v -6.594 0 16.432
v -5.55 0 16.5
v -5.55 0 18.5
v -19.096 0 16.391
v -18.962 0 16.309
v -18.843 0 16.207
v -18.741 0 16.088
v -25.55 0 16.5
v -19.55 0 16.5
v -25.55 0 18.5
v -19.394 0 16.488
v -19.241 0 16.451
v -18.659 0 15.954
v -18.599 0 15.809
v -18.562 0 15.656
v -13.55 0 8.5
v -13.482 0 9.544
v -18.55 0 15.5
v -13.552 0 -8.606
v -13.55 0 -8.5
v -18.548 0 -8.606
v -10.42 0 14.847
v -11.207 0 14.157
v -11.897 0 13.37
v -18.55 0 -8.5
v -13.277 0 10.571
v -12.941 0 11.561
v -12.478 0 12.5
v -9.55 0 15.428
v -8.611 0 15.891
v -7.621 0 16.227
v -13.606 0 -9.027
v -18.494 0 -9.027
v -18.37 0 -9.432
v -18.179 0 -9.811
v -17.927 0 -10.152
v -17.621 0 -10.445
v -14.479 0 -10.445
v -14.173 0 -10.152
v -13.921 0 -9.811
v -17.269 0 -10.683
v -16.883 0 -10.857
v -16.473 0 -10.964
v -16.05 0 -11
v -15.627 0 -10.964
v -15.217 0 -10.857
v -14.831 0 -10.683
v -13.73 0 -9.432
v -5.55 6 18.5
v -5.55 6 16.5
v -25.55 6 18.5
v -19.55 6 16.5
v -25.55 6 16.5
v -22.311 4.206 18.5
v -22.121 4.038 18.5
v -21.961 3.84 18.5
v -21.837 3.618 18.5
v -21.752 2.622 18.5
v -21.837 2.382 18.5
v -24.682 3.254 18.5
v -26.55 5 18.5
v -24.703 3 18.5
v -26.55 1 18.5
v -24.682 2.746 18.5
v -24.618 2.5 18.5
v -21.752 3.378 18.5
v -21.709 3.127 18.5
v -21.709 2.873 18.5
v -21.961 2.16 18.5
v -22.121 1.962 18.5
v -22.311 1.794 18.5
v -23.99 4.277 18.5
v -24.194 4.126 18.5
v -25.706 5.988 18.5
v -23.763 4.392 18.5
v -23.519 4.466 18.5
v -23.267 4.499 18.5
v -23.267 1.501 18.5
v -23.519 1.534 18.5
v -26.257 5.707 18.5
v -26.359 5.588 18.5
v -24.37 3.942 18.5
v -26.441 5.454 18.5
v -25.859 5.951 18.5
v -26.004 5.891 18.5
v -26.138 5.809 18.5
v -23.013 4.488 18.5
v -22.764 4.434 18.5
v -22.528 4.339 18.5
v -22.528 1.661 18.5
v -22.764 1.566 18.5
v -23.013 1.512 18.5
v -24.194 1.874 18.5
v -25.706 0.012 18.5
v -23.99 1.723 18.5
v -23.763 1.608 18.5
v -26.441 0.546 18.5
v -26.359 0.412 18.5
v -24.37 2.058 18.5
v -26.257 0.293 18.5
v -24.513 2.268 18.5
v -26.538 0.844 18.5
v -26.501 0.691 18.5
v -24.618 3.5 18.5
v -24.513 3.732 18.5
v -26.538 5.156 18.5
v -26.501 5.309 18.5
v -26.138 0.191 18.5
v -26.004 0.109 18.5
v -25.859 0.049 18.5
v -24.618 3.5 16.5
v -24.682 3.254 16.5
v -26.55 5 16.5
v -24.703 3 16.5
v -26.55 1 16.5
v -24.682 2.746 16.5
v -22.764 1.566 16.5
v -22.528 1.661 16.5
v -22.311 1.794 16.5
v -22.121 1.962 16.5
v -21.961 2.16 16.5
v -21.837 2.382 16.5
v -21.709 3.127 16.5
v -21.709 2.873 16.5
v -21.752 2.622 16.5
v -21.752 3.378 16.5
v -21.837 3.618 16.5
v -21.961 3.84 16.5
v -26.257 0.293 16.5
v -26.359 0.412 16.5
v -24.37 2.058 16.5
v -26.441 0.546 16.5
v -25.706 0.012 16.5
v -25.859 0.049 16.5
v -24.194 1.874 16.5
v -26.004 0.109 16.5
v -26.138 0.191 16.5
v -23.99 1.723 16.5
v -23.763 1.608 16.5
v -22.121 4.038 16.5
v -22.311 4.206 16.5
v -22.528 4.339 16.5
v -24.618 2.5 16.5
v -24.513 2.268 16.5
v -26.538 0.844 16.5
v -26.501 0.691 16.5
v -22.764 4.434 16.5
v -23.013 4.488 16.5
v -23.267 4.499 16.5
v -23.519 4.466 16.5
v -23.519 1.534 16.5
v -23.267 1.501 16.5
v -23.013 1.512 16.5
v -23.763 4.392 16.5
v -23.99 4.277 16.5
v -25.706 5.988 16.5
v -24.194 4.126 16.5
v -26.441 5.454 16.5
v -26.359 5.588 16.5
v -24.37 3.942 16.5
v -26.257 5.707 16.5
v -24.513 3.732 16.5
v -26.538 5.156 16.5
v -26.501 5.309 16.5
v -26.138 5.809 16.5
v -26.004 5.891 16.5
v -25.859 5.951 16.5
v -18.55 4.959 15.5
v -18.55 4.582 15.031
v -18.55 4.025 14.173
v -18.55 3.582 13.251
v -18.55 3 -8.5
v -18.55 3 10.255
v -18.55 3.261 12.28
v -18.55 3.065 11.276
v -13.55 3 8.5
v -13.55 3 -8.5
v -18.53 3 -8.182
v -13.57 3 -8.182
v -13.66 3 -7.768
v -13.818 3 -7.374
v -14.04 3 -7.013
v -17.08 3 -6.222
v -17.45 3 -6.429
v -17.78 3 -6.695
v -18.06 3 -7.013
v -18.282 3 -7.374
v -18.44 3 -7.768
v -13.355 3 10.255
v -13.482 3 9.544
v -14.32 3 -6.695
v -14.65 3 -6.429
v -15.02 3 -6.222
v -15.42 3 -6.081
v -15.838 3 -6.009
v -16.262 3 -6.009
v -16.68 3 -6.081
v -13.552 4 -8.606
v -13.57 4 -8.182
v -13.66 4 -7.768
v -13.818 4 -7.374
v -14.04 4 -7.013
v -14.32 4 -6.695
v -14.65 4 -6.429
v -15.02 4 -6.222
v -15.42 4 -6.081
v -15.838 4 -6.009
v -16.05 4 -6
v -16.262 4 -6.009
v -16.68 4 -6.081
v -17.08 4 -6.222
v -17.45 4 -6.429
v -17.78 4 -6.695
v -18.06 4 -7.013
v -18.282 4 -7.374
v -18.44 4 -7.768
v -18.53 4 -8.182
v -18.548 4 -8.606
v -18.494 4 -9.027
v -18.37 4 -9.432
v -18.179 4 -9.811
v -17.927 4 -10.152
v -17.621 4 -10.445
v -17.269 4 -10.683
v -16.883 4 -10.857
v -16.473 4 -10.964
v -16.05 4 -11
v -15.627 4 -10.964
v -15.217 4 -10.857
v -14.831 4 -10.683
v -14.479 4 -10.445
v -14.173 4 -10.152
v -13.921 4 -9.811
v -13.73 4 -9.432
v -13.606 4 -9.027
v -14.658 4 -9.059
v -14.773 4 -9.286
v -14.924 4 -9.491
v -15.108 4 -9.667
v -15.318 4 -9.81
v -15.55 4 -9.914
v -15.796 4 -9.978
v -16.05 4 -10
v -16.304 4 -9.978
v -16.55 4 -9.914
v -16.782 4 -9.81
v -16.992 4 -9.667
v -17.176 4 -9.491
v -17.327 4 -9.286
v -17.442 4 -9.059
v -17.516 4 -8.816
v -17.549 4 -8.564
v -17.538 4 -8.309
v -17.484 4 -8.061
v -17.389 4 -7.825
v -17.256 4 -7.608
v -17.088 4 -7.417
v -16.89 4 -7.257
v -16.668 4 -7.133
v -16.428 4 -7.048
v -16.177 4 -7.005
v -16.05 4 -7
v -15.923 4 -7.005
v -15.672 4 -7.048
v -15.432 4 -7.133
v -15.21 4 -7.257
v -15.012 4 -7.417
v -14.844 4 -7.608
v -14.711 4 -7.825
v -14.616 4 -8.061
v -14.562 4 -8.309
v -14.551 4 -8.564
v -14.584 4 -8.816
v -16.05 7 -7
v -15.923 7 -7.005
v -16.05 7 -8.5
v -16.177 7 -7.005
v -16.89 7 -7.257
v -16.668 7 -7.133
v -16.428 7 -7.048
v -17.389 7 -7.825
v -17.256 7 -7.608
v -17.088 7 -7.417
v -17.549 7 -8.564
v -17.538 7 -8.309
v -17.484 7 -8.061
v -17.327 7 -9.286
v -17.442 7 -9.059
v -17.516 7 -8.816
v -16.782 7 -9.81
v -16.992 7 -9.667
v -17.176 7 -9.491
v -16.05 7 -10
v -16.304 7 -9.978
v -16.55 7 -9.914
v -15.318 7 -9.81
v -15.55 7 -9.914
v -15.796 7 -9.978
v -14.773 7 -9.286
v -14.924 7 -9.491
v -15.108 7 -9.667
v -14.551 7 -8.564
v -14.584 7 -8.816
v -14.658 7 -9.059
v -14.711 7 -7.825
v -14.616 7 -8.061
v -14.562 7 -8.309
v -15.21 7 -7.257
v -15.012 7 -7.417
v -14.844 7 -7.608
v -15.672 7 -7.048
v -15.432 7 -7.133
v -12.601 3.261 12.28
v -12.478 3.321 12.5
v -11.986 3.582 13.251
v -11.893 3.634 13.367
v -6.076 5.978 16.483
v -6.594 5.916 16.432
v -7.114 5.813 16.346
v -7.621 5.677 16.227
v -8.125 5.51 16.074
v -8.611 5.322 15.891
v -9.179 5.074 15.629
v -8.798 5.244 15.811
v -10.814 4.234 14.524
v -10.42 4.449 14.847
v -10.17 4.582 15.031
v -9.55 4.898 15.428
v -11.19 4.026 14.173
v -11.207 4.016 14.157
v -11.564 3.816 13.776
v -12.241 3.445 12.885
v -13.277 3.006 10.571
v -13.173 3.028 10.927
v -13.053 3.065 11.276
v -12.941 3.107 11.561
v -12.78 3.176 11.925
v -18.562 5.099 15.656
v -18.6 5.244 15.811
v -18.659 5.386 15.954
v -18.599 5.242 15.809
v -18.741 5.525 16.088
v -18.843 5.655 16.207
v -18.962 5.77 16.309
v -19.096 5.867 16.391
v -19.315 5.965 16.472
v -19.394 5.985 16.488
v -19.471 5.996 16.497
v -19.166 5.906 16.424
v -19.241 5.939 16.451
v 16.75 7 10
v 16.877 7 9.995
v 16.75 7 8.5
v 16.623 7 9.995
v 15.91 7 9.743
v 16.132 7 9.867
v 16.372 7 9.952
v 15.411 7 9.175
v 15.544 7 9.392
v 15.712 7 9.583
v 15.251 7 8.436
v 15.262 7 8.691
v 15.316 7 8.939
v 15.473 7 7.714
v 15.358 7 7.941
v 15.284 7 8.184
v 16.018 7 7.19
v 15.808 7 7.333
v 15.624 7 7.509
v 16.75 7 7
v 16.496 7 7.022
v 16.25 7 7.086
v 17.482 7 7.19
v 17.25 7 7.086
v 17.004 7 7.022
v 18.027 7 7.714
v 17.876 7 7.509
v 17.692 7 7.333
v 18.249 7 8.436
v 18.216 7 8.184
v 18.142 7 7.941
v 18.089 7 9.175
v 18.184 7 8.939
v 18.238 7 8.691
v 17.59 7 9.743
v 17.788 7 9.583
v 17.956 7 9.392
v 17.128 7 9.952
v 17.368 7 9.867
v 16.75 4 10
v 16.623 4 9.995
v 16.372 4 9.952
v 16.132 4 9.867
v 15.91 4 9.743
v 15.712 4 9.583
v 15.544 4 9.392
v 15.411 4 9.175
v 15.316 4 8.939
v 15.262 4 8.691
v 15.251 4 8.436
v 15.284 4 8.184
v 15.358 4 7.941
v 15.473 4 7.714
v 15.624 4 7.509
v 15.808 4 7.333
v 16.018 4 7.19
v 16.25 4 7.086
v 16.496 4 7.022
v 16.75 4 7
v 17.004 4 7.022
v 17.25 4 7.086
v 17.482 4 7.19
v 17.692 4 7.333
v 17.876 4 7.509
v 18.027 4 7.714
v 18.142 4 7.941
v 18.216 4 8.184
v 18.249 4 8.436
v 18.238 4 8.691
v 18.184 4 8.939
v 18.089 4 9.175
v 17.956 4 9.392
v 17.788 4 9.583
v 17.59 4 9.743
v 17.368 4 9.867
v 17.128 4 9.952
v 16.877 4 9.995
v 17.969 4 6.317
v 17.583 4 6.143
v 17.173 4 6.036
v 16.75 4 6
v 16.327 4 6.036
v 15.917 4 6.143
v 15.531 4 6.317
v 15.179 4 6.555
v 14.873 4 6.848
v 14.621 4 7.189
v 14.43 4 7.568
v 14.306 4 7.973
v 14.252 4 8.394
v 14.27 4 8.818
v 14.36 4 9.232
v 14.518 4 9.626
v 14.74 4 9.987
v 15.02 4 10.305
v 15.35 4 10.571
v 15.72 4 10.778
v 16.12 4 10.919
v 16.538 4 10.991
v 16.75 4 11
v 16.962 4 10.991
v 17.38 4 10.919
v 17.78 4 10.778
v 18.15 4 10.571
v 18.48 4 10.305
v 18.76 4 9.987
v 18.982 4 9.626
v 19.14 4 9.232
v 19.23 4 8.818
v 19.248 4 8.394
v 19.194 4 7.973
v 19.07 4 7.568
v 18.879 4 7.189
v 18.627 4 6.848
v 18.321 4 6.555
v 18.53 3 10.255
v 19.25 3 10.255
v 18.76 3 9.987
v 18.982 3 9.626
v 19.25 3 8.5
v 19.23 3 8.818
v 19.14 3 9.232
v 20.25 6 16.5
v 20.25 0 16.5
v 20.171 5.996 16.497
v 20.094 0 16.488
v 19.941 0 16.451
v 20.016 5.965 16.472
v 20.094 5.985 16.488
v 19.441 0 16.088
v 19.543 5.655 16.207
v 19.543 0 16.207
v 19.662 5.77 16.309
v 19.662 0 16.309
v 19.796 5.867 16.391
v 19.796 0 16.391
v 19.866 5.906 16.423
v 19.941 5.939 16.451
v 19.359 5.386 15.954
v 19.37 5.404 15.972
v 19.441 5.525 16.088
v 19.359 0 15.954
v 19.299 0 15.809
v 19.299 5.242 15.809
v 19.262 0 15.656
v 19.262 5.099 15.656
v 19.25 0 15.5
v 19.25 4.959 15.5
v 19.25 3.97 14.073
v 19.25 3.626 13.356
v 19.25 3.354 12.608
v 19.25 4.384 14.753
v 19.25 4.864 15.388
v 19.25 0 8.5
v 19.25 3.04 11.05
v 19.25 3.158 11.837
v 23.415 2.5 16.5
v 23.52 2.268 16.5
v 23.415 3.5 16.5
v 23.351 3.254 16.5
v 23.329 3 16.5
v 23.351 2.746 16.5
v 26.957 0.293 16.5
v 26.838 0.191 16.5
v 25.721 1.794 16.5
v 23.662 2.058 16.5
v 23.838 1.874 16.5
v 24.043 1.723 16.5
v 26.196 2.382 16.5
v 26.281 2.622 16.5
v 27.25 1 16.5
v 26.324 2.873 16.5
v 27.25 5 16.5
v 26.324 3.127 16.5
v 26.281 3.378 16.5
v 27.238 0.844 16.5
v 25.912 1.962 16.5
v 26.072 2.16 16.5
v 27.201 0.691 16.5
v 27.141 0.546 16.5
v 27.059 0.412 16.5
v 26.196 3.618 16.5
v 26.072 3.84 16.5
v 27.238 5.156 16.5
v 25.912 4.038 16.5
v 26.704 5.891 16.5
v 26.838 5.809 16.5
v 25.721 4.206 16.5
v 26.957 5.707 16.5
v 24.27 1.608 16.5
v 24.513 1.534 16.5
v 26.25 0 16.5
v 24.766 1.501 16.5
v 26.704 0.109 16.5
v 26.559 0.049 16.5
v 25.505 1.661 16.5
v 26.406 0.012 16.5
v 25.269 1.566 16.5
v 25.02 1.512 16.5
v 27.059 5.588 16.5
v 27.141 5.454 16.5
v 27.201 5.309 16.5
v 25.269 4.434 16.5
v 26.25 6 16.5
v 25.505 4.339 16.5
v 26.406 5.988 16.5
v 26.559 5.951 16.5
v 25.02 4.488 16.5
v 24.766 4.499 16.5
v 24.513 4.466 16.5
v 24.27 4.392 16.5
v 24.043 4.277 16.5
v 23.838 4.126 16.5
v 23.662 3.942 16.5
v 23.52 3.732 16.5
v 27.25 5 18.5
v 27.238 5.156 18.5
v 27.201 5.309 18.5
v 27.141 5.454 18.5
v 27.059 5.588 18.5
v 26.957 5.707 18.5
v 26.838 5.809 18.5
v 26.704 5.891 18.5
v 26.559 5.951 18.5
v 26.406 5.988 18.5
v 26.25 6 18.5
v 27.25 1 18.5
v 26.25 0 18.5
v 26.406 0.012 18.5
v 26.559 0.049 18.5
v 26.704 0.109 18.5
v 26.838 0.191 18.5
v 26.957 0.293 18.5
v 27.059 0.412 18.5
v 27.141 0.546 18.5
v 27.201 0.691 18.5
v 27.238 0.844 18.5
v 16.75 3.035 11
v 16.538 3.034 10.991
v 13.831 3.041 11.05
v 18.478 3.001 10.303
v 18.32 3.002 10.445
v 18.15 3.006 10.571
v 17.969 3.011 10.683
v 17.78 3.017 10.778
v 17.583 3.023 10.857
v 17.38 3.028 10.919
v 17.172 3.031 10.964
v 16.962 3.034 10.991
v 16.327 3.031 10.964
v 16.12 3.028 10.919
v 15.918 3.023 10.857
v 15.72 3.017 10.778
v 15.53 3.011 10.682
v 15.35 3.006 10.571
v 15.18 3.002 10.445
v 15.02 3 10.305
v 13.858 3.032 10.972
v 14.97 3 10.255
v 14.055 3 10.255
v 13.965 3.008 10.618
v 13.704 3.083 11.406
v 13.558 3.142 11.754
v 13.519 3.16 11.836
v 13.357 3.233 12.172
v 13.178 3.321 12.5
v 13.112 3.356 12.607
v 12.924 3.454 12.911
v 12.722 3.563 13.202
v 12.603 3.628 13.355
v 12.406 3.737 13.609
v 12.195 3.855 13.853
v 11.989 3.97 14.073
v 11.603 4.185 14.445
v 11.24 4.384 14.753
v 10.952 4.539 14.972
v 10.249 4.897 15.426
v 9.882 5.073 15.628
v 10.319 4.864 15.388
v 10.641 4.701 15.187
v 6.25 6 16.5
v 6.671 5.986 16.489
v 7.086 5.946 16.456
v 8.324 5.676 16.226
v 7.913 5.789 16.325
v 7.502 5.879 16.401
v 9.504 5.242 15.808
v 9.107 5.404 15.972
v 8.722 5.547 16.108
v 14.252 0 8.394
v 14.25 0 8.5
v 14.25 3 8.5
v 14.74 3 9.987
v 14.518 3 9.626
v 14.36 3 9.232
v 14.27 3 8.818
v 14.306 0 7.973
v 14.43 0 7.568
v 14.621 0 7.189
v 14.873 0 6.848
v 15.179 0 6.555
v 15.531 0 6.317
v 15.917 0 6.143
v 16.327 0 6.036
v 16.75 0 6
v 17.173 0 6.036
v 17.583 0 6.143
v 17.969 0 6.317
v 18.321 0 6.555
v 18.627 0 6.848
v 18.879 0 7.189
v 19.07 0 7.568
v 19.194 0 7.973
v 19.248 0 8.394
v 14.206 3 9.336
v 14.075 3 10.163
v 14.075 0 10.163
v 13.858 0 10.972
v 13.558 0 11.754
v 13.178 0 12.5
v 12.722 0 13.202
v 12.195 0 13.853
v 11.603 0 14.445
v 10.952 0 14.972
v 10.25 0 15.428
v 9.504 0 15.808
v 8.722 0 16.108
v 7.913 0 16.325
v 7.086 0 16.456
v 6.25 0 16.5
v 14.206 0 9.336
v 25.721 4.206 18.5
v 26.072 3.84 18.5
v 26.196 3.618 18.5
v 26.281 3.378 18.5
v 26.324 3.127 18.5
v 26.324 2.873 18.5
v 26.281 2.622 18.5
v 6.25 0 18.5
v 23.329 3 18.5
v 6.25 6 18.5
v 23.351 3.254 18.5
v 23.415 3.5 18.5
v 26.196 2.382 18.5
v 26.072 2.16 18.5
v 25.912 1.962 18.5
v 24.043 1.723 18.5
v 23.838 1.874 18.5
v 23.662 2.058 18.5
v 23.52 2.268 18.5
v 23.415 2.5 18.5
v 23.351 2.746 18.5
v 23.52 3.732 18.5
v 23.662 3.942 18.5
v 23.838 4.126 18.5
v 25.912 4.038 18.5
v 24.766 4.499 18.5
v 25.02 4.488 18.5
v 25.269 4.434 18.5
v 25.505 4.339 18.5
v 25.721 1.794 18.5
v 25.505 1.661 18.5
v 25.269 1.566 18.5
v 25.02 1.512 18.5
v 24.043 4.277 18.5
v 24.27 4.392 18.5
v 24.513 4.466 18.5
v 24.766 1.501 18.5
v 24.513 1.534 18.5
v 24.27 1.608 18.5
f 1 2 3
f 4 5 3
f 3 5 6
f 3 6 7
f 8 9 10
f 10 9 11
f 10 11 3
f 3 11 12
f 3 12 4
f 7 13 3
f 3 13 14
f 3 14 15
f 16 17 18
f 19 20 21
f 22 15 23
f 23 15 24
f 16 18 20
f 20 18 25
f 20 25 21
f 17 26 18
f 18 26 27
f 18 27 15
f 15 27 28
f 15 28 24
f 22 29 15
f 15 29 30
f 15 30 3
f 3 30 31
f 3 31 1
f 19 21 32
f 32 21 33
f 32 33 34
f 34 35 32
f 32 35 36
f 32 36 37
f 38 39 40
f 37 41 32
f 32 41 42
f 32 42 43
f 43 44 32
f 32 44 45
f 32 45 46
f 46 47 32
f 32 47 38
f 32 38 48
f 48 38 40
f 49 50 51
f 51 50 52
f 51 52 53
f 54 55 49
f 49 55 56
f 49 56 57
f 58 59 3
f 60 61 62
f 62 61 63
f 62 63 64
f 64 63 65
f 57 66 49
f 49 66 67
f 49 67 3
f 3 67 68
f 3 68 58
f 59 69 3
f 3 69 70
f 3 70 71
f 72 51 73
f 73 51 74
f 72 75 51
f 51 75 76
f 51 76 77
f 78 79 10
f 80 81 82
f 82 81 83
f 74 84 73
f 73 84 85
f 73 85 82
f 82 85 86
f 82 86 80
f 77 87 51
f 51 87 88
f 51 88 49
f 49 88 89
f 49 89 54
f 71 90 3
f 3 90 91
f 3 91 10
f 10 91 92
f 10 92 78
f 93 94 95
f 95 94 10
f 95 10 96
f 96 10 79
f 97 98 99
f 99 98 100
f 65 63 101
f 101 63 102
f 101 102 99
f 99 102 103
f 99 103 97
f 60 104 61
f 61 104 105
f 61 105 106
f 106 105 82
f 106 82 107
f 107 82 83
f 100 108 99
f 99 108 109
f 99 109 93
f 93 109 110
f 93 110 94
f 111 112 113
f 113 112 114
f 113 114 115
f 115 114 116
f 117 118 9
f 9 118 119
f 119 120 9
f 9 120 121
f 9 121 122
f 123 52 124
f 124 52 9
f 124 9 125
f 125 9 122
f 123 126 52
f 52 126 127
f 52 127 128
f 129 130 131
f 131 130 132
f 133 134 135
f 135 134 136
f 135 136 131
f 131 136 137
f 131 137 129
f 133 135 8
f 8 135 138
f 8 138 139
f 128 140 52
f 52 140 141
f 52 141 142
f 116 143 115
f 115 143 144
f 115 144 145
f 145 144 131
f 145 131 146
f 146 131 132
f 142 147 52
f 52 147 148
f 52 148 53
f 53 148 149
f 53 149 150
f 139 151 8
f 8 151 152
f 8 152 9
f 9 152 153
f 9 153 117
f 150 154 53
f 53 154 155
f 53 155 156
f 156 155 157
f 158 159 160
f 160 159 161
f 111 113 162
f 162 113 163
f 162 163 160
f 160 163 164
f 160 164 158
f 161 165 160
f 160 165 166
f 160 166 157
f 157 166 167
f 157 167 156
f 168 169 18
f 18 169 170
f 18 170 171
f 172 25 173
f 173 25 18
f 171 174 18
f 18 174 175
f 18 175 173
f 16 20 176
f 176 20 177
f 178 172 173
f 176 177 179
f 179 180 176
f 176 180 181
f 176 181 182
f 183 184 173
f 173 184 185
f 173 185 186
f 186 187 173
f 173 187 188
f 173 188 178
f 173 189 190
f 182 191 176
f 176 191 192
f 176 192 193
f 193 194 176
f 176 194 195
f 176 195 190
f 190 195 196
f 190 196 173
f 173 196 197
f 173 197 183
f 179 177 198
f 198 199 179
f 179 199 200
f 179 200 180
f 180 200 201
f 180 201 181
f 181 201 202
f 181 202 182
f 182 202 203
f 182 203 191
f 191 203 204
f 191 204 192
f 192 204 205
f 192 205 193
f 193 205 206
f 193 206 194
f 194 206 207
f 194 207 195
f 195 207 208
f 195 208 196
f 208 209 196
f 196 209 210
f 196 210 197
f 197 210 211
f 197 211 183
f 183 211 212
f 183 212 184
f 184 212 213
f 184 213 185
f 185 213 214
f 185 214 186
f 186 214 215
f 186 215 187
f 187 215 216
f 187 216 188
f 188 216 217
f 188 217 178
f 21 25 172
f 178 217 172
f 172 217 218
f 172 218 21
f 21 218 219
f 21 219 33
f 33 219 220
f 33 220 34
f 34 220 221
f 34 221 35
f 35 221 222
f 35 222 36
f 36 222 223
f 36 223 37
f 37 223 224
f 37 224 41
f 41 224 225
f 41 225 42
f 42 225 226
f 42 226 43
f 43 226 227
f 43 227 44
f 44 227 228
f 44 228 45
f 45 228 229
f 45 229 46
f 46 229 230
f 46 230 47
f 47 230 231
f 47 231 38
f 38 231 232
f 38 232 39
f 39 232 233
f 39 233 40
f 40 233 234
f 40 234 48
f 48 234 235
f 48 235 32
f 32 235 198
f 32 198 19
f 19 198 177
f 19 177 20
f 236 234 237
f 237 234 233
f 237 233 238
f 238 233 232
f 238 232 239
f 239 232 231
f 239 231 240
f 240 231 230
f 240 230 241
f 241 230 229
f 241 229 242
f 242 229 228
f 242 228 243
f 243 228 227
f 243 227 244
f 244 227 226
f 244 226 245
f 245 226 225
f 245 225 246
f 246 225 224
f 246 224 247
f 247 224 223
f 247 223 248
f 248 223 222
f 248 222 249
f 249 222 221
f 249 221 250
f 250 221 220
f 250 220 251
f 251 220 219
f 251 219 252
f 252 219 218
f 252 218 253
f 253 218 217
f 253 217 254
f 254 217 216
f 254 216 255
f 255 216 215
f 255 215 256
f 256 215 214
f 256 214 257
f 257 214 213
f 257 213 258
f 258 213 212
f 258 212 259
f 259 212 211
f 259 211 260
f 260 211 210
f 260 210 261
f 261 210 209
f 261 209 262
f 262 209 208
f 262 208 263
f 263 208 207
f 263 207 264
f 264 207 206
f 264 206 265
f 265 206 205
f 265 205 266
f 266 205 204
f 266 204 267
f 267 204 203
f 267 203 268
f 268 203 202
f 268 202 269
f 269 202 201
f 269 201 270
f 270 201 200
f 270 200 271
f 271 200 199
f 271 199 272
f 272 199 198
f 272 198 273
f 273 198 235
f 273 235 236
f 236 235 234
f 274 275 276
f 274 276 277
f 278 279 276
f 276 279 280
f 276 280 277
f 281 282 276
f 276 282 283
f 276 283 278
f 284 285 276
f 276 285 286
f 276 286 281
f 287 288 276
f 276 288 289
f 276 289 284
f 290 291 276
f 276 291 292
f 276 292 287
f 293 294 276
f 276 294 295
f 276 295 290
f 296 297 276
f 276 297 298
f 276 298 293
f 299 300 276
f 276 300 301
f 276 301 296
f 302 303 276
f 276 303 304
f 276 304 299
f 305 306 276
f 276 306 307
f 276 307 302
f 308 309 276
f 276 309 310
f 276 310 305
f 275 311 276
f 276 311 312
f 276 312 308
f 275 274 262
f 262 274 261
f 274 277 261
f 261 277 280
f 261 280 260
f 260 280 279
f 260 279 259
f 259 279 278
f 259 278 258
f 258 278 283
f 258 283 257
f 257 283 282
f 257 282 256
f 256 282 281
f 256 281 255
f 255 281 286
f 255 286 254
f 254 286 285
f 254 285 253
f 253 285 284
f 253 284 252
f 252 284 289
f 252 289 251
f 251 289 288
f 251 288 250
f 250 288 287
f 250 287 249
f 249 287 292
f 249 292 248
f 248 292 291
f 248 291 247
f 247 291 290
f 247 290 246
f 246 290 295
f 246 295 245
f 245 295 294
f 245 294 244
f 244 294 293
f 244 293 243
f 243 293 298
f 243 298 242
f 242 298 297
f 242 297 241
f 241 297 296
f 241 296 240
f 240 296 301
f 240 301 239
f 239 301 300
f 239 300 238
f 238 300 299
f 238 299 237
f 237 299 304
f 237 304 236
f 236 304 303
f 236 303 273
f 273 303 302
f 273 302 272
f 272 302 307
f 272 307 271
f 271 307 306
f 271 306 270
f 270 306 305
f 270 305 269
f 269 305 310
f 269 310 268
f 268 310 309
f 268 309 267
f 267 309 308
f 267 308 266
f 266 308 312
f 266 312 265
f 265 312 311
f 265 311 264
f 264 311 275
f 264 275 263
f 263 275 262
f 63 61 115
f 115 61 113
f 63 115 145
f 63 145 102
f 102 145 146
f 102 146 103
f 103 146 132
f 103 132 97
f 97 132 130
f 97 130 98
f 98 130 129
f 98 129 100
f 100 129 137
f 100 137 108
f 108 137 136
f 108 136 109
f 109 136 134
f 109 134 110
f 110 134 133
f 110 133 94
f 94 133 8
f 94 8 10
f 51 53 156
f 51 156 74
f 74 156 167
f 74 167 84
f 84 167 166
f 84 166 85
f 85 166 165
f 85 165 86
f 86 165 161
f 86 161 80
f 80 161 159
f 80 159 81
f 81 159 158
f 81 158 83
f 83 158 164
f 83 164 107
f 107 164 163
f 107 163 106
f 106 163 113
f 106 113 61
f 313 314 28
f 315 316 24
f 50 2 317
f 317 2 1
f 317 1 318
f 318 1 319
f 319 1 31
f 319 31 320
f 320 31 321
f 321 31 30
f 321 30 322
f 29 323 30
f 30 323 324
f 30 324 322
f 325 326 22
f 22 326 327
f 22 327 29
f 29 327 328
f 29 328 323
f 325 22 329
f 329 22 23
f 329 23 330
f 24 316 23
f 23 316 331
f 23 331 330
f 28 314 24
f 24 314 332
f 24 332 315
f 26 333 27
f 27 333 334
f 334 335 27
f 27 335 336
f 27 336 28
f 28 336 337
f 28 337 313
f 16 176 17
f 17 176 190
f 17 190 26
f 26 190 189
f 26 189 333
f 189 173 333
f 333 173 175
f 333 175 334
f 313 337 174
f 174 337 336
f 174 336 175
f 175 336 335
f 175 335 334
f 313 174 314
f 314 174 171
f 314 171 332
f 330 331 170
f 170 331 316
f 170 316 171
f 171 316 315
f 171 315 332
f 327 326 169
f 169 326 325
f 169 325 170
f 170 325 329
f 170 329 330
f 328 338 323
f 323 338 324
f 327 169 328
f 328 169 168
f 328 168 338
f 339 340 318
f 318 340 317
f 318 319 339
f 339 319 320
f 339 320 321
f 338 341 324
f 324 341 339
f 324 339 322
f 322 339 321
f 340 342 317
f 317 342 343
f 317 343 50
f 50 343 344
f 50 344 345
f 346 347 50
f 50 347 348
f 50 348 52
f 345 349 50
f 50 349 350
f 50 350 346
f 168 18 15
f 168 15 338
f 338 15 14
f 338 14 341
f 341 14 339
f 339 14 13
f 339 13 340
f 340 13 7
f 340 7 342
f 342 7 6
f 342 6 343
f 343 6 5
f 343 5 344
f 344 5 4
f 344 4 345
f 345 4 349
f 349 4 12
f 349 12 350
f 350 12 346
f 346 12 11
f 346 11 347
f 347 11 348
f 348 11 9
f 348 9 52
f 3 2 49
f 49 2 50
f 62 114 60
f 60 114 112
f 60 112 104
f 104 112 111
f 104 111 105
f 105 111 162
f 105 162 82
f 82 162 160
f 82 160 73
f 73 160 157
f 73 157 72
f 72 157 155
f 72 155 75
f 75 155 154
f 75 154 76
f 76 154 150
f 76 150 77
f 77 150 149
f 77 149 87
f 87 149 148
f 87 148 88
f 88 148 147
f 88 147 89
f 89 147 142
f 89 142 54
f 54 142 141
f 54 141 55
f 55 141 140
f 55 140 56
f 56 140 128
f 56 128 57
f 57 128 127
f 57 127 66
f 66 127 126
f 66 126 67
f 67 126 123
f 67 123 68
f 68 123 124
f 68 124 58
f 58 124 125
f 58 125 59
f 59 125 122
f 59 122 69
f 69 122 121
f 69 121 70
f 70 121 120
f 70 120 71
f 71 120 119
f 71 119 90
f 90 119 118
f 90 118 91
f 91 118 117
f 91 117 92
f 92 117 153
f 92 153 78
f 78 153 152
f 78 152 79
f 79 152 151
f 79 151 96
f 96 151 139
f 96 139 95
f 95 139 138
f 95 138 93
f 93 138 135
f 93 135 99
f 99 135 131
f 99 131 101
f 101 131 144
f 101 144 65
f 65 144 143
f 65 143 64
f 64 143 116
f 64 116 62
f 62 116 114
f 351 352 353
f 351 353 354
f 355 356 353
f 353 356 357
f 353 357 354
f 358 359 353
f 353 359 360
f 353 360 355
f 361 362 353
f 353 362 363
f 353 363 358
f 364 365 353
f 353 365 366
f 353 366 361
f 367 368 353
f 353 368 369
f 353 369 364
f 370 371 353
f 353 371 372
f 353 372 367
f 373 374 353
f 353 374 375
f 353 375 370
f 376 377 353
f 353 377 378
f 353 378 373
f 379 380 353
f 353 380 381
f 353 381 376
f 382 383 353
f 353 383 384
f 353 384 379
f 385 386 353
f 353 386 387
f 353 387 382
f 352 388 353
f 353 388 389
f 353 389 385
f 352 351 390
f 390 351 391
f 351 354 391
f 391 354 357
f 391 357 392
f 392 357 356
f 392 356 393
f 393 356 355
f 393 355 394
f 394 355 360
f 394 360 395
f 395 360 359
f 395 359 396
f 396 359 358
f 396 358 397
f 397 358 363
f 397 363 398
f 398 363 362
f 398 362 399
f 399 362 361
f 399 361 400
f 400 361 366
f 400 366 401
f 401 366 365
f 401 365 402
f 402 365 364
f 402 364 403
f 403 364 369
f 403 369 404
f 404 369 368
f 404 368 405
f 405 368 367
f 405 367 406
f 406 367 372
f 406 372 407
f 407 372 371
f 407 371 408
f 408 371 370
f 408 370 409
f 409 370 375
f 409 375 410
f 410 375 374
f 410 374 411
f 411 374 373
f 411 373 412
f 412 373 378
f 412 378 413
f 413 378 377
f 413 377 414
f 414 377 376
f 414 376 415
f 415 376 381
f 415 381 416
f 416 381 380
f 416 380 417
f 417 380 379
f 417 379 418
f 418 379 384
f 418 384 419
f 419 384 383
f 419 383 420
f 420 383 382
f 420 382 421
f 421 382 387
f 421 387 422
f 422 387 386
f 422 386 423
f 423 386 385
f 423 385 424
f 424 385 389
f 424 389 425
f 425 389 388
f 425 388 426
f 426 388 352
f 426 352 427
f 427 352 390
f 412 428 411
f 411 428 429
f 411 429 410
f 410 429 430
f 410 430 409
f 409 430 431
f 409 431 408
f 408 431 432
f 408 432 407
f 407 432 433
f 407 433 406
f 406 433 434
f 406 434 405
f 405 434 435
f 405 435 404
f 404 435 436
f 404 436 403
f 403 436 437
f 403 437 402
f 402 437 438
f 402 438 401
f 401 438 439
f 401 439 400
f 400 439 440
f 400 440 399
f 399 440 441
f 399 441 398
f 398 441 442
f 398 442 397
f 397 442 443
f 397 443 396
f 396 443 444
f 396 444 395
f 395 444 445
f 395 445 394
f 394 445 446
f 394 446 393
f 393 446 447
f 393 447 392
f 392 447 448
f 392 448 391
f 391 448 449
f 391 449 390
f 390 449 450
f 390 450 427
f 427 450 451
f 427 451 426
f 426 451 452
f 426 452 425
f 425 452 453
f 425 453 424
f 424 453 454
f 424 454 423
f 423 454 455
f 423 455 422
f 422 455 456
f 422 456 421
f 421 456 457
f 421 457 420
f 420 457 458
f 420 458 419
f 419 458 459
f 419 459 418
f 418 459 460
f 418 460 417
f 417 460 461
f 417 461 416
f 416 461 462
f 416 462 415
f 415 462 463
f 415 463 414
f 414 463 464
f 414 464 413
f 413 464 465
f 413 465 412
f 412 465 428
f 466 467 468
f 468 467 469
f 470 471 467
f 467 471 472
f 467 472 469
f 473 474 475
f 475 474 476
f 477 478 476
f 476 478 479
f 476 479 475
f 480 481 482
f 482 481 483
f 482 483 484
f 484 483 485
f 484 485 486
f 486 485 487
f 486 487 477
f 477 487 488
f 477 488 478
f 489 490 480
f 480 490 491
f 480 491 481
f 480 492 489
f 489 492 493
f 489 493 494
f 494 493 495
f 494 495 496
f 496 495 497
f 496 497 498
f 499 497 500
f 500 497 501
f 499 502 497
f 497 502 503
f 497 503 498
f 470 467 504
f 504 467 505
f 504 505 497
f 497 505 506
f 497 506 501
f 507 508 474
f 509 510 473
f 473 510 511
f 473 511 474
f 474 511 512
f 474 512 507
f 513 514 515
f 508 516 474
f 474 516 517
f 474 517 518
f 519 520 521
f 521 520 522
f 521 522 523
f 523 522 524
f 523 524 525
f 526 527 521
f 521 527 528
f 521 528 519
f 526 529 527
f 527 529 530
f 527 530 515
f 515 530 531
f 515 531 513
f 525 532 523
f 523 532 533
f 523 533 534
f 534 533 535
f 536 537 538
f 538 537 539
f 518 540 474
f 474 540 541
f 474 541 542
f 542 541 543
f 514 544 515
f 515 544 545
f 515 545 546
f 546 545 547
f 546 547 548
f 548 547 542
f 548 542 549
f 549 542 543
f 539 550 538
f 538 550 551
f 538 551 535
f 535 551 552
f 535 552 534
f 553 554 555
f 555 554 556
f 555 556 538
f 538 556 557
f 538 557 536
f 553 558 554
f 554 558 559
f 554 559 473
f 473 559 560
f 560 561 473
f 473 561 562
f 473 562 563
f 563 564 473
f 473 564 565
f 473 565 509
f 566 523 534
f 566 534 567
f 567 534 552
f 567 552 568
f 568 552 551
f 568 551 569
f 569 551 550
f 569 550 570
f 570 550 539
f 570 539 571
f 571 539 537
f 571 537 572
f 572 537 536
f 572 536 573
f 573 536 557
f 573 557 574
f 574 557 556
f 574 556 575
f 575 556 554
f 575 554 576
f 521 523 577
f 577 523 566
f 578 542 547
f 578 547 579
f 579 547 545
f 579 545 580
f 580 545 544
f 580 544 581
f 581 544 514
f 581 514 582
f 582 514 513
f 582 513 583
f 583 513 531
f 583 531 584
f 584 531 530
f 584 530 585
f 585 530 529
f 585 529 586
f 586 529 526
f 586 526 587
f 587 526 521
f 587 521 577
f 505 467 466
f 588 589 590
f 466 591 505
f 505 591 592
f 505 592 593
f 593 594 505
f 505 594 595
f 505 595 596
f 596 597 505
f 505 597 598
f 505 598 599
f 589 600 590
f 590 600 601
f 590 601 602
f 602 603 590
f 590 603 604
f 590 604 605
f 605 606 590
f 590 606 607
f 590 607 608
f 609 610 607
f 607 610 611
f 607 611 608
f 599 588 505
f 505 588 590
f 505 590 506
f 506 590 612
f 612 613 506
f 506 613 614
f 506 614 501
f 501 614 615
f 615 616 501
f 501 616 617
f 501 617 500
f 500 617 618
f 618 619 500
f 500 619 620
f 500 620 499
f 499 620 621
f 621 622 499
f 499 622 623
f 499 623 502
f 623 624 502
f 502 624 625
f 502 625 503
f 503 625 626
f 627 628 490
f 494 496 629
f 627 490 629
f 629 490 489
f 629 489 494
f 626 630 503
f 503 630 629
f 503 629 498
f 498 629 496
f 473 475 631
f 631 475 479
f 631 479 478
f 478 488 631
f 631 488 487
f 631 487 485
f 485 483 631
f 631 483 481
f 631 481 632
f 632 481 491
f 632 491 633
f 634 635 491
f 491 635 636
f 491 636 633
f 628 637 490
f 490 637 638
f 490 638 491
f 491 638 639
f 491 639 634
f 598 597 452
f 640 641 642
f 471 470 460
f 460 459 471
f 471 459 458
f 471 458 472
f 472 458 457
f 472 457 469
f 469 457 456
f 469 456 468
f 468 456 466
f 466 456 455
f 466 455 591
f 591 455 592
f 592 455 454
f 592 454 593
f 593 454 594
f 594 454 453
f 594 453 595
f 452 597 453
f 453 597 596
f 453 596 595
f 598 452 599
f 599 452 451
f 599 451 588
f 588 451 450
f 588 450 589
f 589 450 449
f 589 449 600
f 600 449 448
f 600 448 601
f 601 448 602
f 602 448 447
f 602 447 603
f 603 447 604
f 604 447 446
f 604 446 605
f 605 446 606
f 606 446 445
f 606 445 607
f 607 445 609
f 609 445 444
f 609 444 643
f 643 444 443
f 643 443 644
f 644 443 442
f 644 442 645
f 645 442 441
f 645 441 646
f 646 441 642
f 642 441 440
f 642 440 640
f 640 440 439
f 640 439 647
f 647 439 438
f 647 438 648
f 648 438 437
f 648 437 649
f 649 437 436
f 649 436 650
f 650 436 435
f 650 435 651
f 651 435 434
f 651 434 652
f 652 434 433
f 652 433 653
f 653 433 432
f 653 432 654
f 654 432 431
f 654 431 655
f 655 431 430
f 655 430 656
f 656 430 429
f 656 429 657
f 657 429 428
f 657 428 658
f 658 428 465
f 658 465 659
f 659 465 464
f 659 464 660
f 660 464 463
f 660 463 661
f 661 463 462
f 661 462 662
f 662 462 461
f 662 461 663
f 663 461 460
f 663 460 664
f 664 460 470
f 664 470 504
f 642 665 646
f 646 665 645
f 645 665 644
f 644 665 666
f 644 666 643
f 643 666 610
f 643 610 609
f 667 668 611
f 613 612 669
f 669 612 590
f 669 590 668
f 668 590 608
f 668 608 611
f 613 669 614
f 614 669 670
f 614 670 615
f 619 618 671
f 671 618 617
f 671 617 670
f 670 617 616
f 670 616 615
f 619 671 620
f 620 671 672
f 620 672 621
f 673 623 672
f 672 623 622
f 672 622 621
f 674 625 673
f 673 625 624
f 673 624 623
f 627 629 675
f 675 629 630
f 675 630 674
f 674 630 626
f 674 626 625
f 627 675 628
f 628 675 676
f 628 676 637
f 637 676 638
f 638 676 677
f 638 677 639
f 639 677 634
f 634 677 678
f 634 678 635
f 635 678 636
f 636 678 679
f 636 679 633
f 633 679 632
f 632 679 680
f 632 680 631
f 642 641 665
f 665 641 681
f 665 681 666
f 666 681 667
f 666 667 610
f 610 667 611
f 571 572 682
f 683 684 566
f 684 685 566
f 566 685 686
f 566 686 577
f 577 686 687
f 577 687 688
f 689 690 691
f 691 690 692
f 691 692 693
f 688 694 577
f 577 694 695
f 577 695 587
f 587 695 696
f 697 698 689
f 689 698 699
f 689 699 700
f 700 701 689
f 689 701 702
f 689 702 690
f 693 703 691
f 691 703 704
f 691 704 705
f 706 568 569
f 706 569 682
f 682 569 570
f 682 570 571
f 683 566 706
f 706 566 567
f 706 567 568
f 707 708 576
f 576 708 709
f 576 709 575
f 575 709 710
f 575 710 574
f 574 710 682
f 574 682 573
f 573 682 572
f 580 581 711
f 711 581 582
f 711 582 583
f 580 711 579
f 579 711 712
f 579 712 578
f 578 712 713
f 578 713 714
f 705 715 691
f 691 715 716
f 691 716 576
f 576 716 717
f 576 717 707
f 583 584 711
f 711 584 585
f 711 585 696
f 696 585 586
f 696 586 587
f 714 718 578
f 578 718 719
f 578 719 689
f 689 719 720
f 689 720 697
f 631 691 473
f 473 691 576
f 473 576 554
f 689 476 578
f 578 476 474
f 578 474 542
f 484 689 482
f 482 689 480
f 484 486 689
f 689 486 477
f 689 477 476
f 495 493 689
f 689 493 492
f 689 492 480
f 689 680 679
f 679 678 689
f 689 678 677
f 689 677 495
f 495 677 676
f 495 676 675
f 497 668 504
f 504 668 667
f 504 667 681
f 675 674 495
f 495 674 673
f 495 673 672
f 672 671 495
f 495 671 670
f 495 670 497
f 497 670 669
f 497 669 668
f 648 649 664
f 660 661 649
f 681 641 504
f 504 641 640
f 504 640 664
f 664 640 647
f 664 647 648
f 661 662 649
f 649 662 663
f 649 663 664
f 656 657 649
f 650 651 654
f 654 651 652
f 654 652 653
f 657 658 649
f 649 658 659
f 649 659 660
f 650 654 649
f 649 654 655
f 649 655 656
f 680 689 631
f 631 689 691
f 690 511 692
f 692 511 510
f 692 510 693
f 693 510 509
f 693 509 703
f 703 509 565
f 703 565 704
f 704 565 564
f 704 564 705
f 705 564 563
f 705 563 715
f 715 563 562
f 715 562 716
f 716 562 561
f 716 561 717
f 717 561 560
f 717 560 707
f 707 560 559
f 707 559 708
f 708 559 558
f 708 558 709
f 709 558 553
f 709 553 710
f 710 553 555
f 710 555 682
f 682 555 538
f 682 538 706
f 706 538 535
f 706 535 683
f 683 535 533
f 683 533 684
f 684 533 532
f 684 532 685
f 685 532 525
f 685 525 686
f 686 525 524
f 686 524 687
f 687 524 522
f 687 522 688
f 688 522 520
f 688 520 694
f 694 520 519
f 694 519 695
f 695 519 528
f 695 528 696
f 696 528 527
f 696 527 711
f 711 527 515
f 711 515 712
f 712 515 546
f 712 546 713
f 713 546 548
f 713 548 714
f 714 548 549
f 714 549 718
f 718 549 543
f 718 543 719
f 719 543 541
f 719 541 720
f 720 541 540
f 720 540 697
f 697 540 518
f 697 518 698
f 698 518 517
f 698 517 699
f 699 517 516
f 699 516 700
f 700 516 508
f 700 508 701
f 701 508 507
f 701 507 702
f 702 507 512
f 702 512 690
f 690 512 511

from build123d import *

# Parameters (mm, degrees)
SKETCH1_W           = 5
SKETCH1_H           = 5
BOSS_EXTRUDE1_DEPTH = 3
BOSS_EXTRUDE2_DEPTH = 4
BOSS_EXTRUDE3_DEPTH = 7
SKETCH2_W           = 53.8
SKETCH2_H           = 6
BOSS_EXTRUDE4_DEPTH = 2
FILLET2_R           = 1
FILLET3_R           = 8
FILLET4_R           = 1
SKETCH4_W           = 11.8
SKETCH4_H           = 2
CUT_EXTRUDE2_DEPTH  = 34.478537919
SKETCH5_R           = 1.5
CUT_EXTRUDE3_DEPTH  = 2


with BuildPart() as part:
    # Sketch1 → Boss-Extrude1 (new body)
    with BuildSketch(Plane(origin=(0, 0, 0), x_dir=(1, 0, 0), z_dir=(0, 1, 0))):
        with BuildLine():
            Line((-18.55, 8.5), (-18.55, -11.5))
            Line((-18.55, -11.5), (-13.55, -11.5))
            Line((-13.55, -11.5), (-13.55, 8.5))
            ThreePointArc((-13.55, 8.5), (-16.05, 6), (-18.55, 8.5))
        make_face()
        with Locations((-16.05, -14)):
            Rectangle(SKETCH1_W, SKETCH1_H)
        with Locations((16.75, -14)):
            Rectangle(SKETCH1_W, SKETCH1_H)
        with BuildLine():
            Line((14.25, -11.5), (19.25, -11.5))
            Line((19.25, -11.5), (19.25, -8.5))
            ThreePointArc((19.25, -8.5), (16.75, -11), (14.25, -8.5))
            Line((14.25, -8.5), (14.25, -11.5))
        make_face()
    extrude(amount=BOSS_EXTRUDE1_DEPTH)

    # Sketch1<3> → Boss-Extrude2 (add)
    with BuildSketch(Plane(origin=(0, 0, 0), x_dir=(1, 0, 0), z_dir=(0, 1, 0))):
        with BuildLine():
            ThreePointArc((-13.55, 8.5), (-16.05, 11), (-18.55, 8.5))
            Line((-18.55, 8.5), (-17.55, 8.5))
            ThreePointArc((-17.55, 8.5), (-16.05, 10), (-14.55, 8.5))
            Line((-14.55, 8.5), (-13.55, 8.5))
        make_face()
        with BuildLine():
            Line((-17.55, 8.5), (-18.55, 8.5))
            ThreePointArc((-18.55, 8.5), (-16.05, 6), (-13.55, 8.5))
            Line((-13.55, 8.5), (-14.55, 8.5))
            ThreePointArc((-14.55, 8.5), (-16.05, 7), (-17.55, 8.5))
        make_face()
        with BuildLine():
            ThreePointArc((14.25, -8.5), (16.75, -11), (19.25, -8.5))
            Line((19.25, -8.5), (18.25, -8.5))
            ThreePointArc((18.25, -8.5), (16.75, -10), (15.25, -8.5))
            Line((15.25, -8.5), (14.25, -8.5))
        make_face()
        with BuildLine():
            Line((18.25, -8.5), (19.25, -8.5))
            ThreePointArc((19.25, -8.5), (16.75, -6), (14.25, -8.5))
            Line((14.25, -8.5), (15.25, -8.5))
            ThreePointArc((15.25, -8.5), (16.75, -7), (18.25, -8.5))
        make_face()
    extrude(amount=BOSS_EXTRUDE2_DEPTH)

    # Sketch1<4> → Boss-Extrude3 (add)
    with BuildSketch(Plane(origin=(0, 0, 0), x_dir=(1, 0, 0), z_dir=(0, 1, 0))):
        with BuildLine():
            ThreePointArc((-14.55, 8.5), (-16.05, 10), (-17.55, 8.5))
            Line((-17.55, 8.5), (-14.55, 8.5))
        make_face()
        with BuildLine():
            Line((-14.55, 8.5), (-17.55, 8.5))
            ThreePointArc((-17.55, 8.5), (-16.05, 7), (-14.55, 8.5))
        make_face()
        with BuildLine():
            ThreePointArc((15.25, -8.5), (16.75, -10), (18.25, -8.5))
            Line((18.25, -8.5), (15.25, -8.5))
        make_face()
        with BuildLine():
            Line((15.25, -8.5), (18.25, -8.5))
            ThreePointArc((18.25, -8.5), (16.75, -7), (15.25, -8.5))
        make_face()
    extrude(amount=BOSS_EXTRUDE3_DEPTH)

    # Sketch2 → Boss-Extrude4 (add)
    with BuildSketch(Plane.XY.offset(16.5)):
        with Locations((0.35, 3)):
            Rectangle(SKETCH2_W, SKETCH2_H)
    extrude(amount=BOSS_EXTRUDE4_DEPTH)

    # Fillet2
    fillet2_edges = [part.edges().sort_by_distance(p)[0] for p in [
        (-26.55, 6, 17.5),
        (-26.55, 0, 17.5),
        (27.25, 0, 17.5),
        (27.25, 6, 17.5),
    ]]
    fillet(fillet2_edges, radius=FILLET2_R)

    # Fillet3
    # the kernel refuses this fillet: 8 mm, written as the material it adds along each edge
    with BuildSketch(Plane(origin=(14.25, 0, 16.5), x_dir=(-1, 0, 0), z_dir=(0, 1, 0))) as fillet3_piece_1:
        with BuildLine():
            CenterArc((FILLET3_R, -FILLET3_R), FILLET3_R, 90, 90)
            Line((0, -FILLET3_R), (-FILLET3_R * 0.02, -FILLET3_R))
            Line((-FILLET3_R * 0.02, -FILLET3_R), (-FILLET3_R * 0.02, FILLET3_R * 0.02))
            Line((-FILLET3_R * 0.02, FILLET3_R * 0.02), (FILLET3_R, FILLET3_R * 0.02))
            Line((FILLET3_R, FILLET3_R * 0.02), (FILLET3_R, 0))
        make_face()
    extrude(amount=3)
    with BuildSketch(Plane(origin=(14.25, 3, 16.5), x_dir=(0, 1, 0), z_dir=(1, 0, 0)), Plane(origin=(-18.55, 3, 16.5), x_dir=(0, 1, 0), z_dir=(1, 0, 0))) as fillet3_piece_2:
        with BuildLine():
            CenterArc((8, -6.244997998), FILLET3_R, 128.682187453, 51.317812547)
            Line((0, -6.244997998), (-0.16, -6.244997998))
            Line((-0.16, -6.244997998), (-0.16, 0))
            Line((-0.16, 0), (0, 0.16))
            ThreePointArc((0, 0.16), (1.5, 0.16), (2.9, 0.12489996))
            Line((2.9, 0.12489996), (3, 0))
        make_face()
    extrude(amount=5)
    with BuildSketch(Plane(origin=(-13.55, 0, 16.5), x_dir=(1, 0, 0), z_dir=(0, 1, 0))) as fillet3_piece_3:
        with BuildLine():
            CenterArc((FILLET3_R, FILLET3_R), FILLET3_R, 180, 90)
            Line((0, FILLET3_R), (-FILLET3_R * 0.02, FILLET3_R))
            Line((-FILLET3_R * 0.02, FILLET3_R), (-FILLET3_R * 0.02, -FILLET3_R * 0.02))
            Line((-FILLET3_R * 0.02, -FILLET3_R * 0.02), (FILLET3_R, -FILLET3_R * 0.02))
            Line((FILLET3_R, -FILLET3_R * 0.02), (FILLET3_R, 0))
        make_face()
    extrude(amount=3)
    with BuildSketch(Plane(origin=(14.25, 0, 16.5), x_dir=(-1, 0, 0), z_dir=(0, 1, 0))) as fillet3_piece_4a_section:
        with BuildLine():
            CenterArc((FILLET3_R, -FILLET3_R), FILLET3_R, 90, 90)
            Line((0, -FILLET3_R), (-FILLET3_R * 0.02, -FILLET3_R))
            Line((-FILLET3_R * 0.02, -FILLET3_R), (-FILLET3_R * 0.02, FILLET3_R * 0.02))
            Line((-FILLET3_R * 0.02, FILLET3_R * 0.02), (FILLET3_R, FILLET3_R * 0.02))
            Line((FILLET3_R, FILLET3_R * 0.02), (FILLET3_R, 0))
        make_face()
    fillet3_piece_4a = extrude(amount=23, mode=Mode.PRIVATE)
    fillet3_piece_4a = split(fillet3_piece_4a, bisect_by=Plane(origin=(12.438839086, 6, 14.688839086), z_dir=(0, -1, 0)), keep=Keep.TOP, mode=Mode.PRIVATE)
    fillet3_piece_4a = split(fillet3_piece_4a, bisect_by=Plane(origin=(12.438839086, 3, 14.688839086), z_dir=(0, 1, 0)), keep=Keep.TOP, mode=Mode.PRIVATE)
    with BuildSketch(Plane(origin=(-1.362494996, 3, 16.5), x_dir=(0, 1, 0), z_dir=(1, 0, 0))) as fillet3_piece_4b_section:
        with BuildLine():
            CenterArc((8, -6.244997998), FILLET3_R, 128.682187453, 51.317812547)
            Line((0, -6.244997998), (-0.16, -6.244997998))
            Line((-0.16, -6.244997998), (-0.16, 0))
            Line((-0.16, 0), (0, 0.16))
            ThreePointArc((0, 0.16), (1.5, 0.16), (2.9, 0.12489996))
            Line((2.9, 0.12489996), (3, 0))
        make_face()
    fillet3_piece_4b = extrude(amount=20.612494996, mode=Mode.PRIVATE)
    fillet3_piece_4b = split(fillet3_piece_4b, bisect_by=Plane(origin=(14.25, 3.763389278, 14.878987527), z_dir=(-1, 0, 0)), keep=Keep.TOP, mode=Mode.PRIVATE)
    fillet3_piece_4 = fillet3_piece_4a & fillet3_piece_4b
    add(fillet3_piece_4)
    with BuildSketch(Plane(origin=(-18.55, 3, 16.5), x_dir=(0, 1, 0), z_dir=(1, 0, 0))) as fillet3_piece_5a_section:
        with BuildLine():
            CenterArc((8, -6.244997998), FILLET3_R, 128.682187453, 51.317812547)
            Line((0, -6.244997998), (-0.16, -6.244997998))
            Line((-0.16, -6.244997998), (-0.16, 0))
            Line((-0.16, 0), (0, 0.16))
            ThreePointArc((0, 0.16), (1.5, 0.16), (2.9, 0.12489996))
            Line((2.9, 0.12489996), (3, 0))
        make_face()
    fillet3_piece_5a = extrude(amount=20.612494996, mode=Mode.PRIVATE)
    fillet3_piece_5a = split(fillet3_piece_5a, bisect_by=Plane(origin=(-13.55, 3.763389278, 14.878987527), z_dir=(1, 0, 0)), keep=Keep.TOP, mode=Mode.PRIVATE)
    with BuildSketch(Plane(origin=(-13.55, 0, 16.5), x_dir=(1, 0, 0), z_dir=(0, 1, 0))) as fillet3_piece_5b_section:
        with BuildLine():
            CenterArc((FILLET3_R, FILLET3_R), FILLET3_R, 180, 90)
            Line((0, FILLET3_R), (-FILLET3_R * 0.02, FILLET3_R))
            Line((-FILLET3_R * 0.02, FILLET3_R), (-FILLET3_R * 0.02, -FILLET3_R * 0.02))
            Line((-FILLET3_R * 0.02, -FILLET3_R * 0.02), (FILLET3_R, -FILLET3_R * 0.02))
            Line((FILLET3_R, -FILLET3_R * 0.02), (FILLET3_R, 0))
        make_face()
    fillet3_piece_5b = extrude(amount=23, mode=Mode.PRIVATE)
    fillet3_piece_5b = split(fillet3_piece_5b, bisect_by=Plane(origin=(-11.738839086, 6, 14.688839086), z_dir=(0, -1, 0)), keep=Keep.TOP, mode=Mode.PRIVATE)
    fillet3_piece_5b = split(fillet3_piece_5b, bisect_by=Plane(origin=(-11.738839086, 3, 14.688839086), z_dir=(0, 1, 0)), keep=Keep.TOP, mode=Mode.PRIVATE)
    fillet3_piece_5 = fillet3_piece_5a & fillet3_piece_5b
    add(fillet3_piece_5)

    # Fillet4
    # the kernel refuses this fillet: 1 mm, written as the material it adds along each edge
    with BuildSketch(Plane(origin=(19.25, 6, 16.5), x_dir=(1, 0, 0), z_dir=(0, -1, 0))) as fillet4_piece_1_section:
        with BuildLine():
            CenterArc((FILLET4_R, -FILLET4_R), FILLET4_R, 90, 90)
            Line((0, -FILLET4_R), (0, 0))
            Line((0, 0), (FILLET4_R, 0))
        make_face()
    fillet4_piece_1 = extrude(amount=6, mode=Mode.PRIVATE)
    fillet4_piece_1 = fillet4_piece_1 - Plane(origin=(19.481697463, 11, 10.255002002), x_dir=(0, 1, 0), z_dir=(-1, 0, 0)) * Cylinder(8, 17, mode=Mode.PRIVATE)
    add(fillet4_piece_1)
    with BuildSketch(Plane(origin=(-18.55, 6, 16.5), x_dir=(-1, 0, 0), z_dir=(0, -1, 0))) as fillet4_piece_2_section:
        with BuildLine():
            CenterArc((FILLET4_R, FILLET4_R), FILLET4_R, 180, 90)
            Line((0, FILLET4_R), (0, 0))
            Line((0, 0), (FILLET4_R, 0))
        make_face()
    fillet4_piece_2 = extrude(amount=6, mode=Mode.PRIVATE)
    fillet4_piece_2 = fillet4_piece_2 - Plane(origin=(-18.781697463, 11, 10.255002002), x_dir=(0, 1, 0), z_dir=(-1, 0, 0)) * Cylinder(8, 17, mode=Mode.PRIVATE)
    add(fillet4_piece_2)

    # Sketch4 → Cut-Extrude2 (cut, through all)
    with BuildSketch(Plane(origin=(0, 6, 0), x_dir=(1, 0, 0), z_dir=(0, 1, 0))):
        with Locations((0.35, -17.5)):
            Rectangle(SKETCH4_W, SKETCH4_H)
    extrude(amount=-CUT_EXTRUDE2_DEPTH, mode=Mode.SUBTRACT)


with BuildPart() as cut_extrude2_piece_1:
    # of the separate pieces the step leaves, piece 1, a body of its own (cut_extrude2_pieces)
    add(part.part.solids().sort_by_distance((-18.55, 4.959305007, 15.5))[0])


with BuildPart() as cut_extrude2_piece_2:
    # of the separate pieces the step leaves, piece 2, a body of its own (cut_extrude2_pieces)
    add(part.part.solids().sort_by_distance((6.25, 0, 16.5))[0])


with BuildPart() as cut_extrude3_tool:
    # Sketch5 → Cut-Extrude3 (new body)
    with BuildSketch(Plane(origin=(0, 0, 16.5), x_dir=(-1, 0, 0), z_dir=(0, 0, -1))):
        with Locations((23.203442322, 3)):
            Circle(SKETCH5_R)
        with Locations((-24.829403808, 3)):
            Circle(SKETCH5_R)
    extrude(amount=-CUT_EXTRUDE3_DEPTH)


with BuildPart() as cut_extrude2_piece_1_1:
    add(cut_extrude2_piece_1.part)

    # Cut-Extrude3: cut by cut_extrude3_tool
    add(cut_extrude3_tool.part, mode=Mode.SUBTRACT)


with BuildPart() as cut_extrude2_piece_2_1:
    add(cut_extrude2_piece_2.part)

    # Cut-Extrude3: cut by cut_extrude3_tool
    add(cut_extrude3_tool.part, mode=Mode.SUBTRACT)


solid = Compound([cut_extrude2_piece_1_1.part, cut_extrude2_piece_2_1.part])
